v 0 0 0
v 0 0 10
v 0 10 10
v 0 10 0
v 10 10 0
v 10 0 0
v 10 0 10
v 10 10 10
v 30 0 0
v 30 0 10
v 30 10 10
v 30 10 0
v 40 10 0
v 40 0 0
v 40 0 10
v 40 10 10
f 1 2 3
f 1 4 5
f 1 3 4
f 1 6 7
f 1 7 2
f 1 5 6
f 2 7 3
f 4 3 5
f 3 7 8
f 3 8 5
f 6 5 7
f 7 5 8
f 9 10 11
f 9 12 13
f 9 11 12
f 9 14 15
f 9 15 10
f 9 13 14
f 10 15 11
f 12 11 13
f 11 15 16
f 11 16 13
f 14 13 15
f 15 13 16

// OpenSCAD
// Two disconnected 10mm cubes — expected components >= 2
translate([0, 0, 0]) cube([10, 10, 10], center=false);
translate([30, 0, 0]) cube([10, 10, 10], center=false);
